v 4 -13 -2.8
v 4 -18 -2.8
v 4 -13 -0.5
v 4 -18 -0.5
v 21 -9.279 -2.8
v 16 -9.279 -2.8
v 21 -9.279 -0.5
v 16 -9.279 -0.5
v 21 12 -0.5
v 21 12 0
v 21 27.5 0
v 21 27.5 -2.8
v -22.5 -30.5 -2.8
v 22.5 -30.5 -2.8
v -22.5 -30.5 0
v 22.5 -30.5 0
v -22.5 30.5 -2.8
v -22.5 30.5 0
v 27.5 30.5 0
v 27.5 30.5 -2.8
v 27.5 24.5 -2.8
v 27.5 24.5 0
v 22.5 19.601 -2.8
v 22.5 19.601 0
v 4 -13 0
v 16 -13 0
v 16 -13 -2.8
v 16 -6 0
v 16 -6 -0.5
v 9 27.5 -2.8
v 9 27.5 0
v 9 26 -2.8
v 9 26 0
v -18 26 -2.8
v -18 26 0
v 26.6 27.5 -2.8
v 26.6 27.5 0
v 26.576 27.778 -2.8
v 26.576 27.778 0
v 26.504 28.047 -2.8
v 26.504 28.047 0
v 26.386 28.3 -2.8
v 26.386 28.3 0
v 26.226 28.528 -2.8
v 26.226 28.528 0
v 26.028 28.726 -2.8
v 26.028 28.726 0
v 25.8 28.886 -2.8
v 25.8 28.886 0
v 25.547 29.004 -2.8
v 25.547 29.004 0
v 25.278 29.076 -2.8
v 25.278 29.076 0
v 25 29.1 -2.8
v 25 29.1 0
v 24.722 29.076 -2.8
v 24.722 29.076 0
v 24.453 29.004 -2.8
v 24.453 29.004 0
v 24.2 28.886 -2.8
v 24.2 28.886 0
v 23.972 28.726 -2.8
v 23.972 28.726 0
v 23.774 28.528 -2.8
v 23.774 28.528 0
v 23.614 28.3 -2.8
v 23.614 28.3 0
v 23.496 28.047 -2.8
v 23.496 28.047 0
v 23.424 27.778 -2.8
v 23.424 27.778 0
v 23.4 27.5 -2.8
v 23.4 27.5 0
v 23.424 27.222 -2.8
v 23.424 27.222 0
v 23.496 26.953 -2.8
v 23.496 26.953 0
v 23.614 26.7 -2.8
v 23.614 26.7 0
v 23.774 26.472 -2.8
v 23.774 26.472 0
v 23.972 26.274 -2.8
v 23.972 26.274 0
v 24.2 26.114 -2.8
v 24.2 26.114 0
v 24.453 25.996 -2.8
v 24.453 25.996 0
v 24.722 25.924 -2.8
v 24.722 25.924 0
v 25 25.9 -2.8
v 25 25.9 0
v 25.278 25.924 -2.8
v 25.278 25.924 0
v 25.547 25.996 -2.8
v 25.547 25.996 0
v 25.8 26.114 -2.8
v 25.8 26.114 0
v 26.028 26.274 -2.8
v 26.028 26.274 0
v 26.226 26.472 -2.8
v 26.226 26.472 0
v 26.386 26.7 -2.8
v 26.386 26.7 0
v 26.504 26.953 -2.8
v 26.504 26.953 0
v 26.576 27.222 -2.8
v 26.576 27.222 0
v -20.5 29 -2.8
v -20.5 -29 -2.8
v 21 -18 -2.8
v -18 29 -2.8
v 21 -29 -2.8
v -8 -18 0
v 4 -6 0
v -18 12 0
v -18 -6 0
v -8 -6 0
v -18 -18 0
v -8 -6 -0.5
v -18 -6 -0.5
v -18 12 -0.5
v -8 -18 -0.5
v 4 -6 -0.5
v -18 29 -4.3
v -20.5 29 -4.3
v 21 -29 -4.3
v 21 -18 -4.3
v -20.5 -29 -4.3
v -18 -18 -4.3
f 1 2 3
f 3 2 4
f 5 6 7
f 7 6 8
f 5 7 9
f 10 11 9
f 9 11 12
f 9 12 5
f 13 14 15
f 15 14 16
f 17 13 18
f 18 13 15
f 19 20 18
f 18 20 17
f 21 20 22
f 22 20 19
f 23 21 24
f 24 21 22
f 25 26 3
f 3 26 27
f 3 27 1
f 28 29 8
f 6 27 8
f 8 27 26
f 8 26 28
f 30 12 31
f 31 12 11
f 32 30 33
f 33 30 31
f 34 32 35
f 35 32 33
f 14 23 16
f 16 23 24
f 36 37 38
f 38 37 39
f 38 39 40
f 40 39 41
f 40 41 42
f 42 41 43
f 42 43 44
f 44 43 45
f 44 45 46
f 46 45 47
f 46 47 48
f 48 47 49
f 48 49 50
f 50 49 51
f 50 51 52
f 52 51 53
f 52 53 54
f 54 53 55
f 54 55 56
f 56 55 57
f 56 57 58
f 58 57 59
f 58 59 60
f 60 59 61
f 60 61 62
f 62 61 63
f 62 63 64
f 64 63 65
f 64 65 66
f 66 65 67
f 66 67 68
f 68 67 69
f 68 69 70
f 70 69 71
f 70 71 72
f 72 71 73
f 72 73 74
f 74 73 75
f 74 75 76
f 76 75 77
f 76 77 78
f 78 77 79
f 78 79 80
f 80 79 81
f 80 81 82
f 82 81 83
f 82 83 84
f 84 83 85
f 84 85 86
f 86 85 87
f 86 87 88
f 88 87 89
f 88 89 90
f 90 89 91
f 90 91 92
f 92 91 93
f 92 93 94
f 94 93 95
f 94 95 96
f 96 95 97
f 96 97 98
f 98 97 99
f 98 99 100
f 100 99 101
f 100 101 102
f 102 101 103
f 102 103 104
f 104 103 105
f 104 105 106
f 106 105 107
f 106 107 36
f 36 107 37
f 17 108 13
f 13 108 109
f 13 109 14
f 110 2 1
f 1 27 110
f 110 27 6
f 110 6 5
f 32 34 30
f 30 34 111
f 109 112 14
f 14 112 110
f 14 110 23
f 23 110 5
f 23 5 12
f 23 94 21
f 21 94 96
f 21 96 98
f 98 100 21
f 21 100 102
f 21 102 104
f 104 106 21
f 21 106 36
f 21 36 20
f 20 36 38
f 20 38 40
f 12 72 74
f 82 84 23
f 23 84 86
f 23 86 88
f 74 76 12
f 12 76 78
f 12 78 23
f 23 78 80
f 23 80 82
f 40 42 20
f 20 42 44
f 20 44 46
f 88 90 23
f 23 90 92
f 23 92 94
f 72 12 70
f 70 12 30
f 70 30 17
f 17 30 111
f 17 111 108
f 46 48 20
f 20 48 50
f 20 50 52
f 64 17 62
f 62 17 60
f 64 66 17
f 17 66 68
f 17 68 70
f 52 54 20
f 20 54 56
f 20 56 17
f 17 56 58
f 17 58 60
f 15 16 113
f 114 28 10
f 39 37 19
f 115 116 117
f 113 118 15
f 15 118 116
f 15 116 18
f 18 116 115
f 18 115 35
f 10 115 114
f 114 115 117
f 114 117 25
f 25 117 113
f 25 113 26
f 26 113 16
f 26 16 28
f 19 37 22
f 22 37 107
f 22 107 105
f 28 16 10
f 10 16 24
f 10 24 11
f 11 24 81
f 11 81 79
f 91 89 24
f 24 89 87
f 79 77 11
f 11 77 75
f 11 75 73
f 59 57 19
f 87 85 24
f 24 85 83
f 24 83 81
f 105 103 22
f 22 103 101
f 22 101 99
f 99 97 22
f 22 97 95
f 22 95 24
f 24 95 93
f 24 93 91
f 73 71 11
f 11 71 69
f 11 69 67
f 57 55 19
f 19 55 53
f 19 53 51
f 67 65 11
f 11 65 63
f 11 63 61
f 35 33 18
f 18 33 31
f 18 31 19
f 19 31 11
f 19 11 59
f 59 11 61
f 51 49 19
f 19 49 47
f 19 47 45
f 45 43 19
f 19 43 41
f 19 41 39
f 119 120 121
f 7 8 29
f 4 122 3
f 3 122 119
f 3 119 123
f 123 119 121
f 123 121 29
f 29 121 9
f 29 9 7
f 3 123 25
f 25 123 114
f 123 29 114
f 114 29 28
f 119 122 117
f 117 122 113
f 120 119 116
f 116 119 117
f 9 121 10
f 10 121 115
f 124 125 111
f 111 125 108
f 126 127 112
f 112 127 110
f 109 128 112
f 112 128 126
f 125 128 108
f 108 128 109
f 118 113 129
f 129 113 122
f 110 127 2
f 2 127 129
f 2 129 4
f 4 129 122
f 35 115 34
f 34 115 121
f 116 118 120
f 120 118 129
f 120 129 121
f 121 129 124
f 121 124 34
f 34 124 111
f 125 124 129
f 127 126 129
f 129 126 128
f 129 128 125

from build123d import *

# Parameters (mm, degrees)
SKETCH_1_R      = 1.6
EXTRUDE_7_DEPTH = 2.8
SKETCH_1_11_W   = 45
SKETCH_1_11_H   = 61
EXTRUDE_8_DEPTH = 0.5
EXTRUDE_9_DEPTH = 4.3


with BuildPart() as part:
    # 草图1 → 凸台-拉伸7 (new body)
    with BuildSketch(Plane.XY):
        Polygon((22.5, -30.5), (22.5, 19.601020514), (27.5, 24.5), (27.5, 30.5), (-22.5, 30.5), (-22.5, -30.5), align=None)
        Polygon((21, -18), (21, -29), (-20.5, -29), (-20.5, 29), (-18, 29), (-18, 26), (9, 26), (9, 27.5), (21, 27.5), (21, -9.279002621), (16, -9.279002621), (16, -13), (4, -13), (4, -18), align=None, mode=Mode.SUBTRACT)
        with Locations((25, 27.5)):
            Circle(SKETCH_1_R, mode=Mode.SUBTRACT)
    extrude(amount=-EXTRUDE_7_DEPTH)

    # 草图1<11> → 凸台-拉伸8 (add)
    with BuildSketch(Plane.XY):
        Rectangle(SKETCH_1_11_W, SKETCH_1_11_H)
        Polygon((21, -29), (-20.5, -29), (-20.5, 29), (21, 29), (21, 12), (-18, 12), (-18, -6), (-8, -6), (-8, -18), (4, -18), (4, -6), (16, -6), (16, -9.279002621), (21, -9.279002621), align=None, mode=Mode.SUBTRACT)
    extrude(amount=-EXTRUDE_8_DEPTH)

    # 草图1<12> → 凸台-拉伸9 (add)
    with BuildSketch(Plane.XY):
        Polygon((-20.5, -29), (21, -29), (21, -18), (16, -18), (4, -18), (-2, -18), (-8, -18), (-18, -18), (-18, -6), (-18, 12), (-18, 26), (-18, 27.5), (-18, 29), (-20.5, 29), align=None)
    extrude(amount=-EXTRUDE_9_DEPTH)


solid = part.part
